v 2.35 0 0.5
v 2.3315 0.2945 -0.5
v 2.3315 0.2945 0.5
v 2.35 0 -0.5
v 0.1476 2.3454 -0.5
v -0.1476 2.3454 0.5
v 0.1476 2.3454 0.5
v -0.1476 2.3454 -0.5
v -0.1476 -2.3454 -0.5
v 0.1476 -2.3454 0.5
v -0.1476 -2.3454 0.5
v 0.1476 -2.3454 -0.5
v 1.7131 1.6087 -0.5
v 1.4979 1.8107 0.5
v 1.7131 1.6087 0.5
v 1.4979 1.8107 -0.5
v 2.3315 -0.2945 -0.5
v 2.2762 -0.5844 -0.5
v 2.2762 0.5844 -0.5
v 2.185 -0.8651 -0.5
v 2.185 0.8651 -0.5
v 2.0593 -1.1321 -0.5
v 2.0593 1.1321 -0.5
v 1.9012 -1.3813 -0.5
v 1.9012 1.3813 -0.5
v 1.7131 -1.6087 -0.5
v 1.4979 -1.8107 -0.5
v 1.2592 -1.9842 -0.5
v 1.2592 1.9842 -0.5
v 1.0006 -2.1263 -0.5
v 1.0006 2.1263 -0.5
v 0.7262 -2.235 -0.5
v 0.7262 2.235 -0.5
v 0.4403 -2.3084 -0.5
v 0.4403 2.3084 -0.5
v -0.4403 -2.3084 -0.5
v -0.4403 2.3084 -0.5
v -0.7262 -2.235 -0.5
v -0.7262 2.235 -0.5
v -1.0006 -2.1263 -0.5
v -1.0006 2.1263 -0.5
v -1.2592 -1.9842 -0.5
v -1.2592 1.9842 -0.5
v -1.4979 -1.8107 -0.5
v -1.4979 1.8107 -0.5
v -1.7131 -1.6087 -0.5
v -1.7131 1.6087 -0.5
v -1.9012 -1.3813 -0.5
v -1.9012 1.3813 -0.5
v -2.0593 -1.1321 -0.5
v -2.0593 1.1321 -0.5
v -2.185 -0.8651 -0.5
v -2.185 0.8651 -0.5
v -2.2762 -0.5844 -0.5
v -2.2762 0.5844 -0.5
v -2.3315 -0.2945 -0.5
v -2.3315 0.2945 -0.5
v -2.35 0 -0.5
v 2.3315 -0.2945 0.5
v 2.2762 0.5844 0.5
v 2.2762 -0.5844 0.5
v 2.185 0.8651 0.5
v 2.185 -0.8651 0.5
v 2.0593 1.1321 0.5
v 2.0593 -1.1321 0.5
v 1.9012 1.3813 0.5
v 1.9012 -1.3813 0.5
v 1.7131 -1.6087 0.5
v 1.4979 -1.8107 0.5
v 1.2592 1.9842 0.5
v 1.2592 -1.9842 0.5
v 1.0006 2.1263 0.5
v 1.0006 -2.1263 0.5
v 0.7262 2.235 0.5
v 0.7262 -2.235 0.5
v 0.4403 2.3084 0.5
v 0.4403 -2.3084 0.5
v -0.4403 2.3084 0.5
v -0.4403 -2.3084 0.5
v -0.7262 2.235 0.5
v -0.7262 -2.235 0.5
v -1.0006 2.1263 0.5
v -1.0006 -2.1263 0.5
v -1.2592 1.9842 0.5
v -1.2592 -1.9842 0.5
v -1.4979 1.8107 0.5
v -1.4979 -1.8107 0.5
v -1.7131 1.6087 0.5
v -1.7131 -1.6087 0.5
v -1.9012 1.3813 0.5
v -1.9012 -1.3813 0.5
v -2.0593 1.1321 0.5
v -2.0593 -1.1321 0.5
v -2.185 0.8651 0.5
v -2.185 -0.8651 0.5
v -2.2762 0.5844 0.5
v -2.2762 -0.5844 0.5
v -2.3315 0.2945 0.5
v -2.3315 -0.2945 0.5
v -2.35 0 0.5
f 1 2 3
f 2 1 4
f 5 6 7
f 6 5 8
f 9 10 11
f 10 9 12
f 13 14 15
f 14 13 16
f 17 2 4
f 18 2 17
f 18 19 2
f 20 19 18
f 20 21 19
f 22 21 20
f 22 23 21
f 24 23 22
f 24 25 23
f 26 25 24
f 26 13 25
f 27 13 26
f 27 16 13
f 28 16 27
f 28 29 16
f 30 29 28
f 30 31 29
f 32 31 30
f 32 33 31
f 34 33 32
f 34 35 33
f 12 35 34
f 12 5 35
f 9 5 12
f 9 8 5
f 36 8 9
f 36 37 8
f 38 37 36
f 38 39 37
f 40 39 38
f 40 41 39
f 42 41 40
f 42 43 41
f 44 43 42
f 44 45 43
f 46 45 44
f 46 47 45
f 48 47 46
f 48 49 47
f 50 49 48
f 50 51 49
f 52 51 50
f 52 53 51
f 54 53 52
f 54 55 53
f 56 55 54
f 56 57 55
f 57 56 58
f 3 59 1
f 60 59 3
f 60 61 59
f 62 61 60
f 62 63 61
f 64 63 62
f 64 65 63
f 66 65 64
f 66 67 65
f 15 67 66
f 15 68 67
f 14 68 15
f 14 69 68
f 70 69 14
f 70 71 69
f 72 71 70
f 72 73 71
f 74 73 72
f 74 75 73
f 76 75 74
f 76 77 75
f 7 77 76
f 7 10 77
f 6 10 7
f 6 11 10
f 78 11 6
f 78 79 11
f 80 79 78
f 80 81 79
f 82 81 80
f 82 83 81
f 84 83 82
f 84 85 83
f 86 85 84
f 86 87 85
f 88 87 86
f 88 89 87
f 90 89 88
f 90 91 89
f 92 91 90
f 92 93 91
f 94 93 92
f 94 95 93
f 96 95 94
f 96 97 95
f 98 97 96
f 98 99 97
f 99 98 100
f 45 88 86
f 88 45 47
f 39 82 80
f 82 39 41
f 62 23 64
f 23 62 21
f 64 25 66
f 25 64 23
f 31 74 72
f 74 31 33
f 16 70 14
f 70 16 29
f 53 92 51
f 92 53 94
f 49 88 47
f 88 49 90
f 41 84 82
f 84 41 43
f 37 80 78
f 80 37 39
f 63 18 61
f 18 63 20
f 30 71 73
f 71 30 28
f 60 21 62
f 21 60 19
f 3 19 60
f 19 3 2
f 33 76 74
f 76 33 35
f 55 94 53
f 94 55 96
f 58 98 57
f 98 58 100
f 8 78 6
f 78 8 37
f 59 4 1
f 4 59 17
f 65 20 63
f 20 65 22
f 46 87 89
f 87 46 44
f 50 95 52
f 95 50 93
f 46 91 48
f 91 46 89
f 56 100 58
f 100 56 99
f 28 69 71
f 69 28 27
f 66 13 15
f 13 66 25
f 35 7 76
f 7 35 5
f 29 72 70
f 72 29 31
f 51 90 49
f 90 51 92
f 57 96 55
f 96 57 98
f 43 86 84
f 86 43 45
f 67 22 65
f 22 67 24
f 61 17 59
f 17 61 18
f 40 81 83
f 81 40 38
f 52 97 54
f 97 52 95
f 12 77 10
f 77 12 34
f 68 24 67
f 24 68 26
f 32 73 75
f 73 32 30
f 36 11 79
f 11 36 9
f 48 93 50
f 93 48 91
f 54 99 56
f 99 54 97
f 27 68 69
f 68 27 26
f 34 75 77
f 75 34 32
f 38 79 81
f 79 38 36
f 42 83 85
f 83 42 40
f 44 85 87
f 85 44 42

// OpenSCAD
$fn = 50;


difference() {
	union() {
		translate(v = [0, 0, -0.5000000000]) {
			cylinder(h = 1, r = 2.3500000000);
		}
	}
	union() {
		translate(v = [0, 0, -100.0000000000]) {
			cylinder(h = 200, r = 0);
		}
	}
}
